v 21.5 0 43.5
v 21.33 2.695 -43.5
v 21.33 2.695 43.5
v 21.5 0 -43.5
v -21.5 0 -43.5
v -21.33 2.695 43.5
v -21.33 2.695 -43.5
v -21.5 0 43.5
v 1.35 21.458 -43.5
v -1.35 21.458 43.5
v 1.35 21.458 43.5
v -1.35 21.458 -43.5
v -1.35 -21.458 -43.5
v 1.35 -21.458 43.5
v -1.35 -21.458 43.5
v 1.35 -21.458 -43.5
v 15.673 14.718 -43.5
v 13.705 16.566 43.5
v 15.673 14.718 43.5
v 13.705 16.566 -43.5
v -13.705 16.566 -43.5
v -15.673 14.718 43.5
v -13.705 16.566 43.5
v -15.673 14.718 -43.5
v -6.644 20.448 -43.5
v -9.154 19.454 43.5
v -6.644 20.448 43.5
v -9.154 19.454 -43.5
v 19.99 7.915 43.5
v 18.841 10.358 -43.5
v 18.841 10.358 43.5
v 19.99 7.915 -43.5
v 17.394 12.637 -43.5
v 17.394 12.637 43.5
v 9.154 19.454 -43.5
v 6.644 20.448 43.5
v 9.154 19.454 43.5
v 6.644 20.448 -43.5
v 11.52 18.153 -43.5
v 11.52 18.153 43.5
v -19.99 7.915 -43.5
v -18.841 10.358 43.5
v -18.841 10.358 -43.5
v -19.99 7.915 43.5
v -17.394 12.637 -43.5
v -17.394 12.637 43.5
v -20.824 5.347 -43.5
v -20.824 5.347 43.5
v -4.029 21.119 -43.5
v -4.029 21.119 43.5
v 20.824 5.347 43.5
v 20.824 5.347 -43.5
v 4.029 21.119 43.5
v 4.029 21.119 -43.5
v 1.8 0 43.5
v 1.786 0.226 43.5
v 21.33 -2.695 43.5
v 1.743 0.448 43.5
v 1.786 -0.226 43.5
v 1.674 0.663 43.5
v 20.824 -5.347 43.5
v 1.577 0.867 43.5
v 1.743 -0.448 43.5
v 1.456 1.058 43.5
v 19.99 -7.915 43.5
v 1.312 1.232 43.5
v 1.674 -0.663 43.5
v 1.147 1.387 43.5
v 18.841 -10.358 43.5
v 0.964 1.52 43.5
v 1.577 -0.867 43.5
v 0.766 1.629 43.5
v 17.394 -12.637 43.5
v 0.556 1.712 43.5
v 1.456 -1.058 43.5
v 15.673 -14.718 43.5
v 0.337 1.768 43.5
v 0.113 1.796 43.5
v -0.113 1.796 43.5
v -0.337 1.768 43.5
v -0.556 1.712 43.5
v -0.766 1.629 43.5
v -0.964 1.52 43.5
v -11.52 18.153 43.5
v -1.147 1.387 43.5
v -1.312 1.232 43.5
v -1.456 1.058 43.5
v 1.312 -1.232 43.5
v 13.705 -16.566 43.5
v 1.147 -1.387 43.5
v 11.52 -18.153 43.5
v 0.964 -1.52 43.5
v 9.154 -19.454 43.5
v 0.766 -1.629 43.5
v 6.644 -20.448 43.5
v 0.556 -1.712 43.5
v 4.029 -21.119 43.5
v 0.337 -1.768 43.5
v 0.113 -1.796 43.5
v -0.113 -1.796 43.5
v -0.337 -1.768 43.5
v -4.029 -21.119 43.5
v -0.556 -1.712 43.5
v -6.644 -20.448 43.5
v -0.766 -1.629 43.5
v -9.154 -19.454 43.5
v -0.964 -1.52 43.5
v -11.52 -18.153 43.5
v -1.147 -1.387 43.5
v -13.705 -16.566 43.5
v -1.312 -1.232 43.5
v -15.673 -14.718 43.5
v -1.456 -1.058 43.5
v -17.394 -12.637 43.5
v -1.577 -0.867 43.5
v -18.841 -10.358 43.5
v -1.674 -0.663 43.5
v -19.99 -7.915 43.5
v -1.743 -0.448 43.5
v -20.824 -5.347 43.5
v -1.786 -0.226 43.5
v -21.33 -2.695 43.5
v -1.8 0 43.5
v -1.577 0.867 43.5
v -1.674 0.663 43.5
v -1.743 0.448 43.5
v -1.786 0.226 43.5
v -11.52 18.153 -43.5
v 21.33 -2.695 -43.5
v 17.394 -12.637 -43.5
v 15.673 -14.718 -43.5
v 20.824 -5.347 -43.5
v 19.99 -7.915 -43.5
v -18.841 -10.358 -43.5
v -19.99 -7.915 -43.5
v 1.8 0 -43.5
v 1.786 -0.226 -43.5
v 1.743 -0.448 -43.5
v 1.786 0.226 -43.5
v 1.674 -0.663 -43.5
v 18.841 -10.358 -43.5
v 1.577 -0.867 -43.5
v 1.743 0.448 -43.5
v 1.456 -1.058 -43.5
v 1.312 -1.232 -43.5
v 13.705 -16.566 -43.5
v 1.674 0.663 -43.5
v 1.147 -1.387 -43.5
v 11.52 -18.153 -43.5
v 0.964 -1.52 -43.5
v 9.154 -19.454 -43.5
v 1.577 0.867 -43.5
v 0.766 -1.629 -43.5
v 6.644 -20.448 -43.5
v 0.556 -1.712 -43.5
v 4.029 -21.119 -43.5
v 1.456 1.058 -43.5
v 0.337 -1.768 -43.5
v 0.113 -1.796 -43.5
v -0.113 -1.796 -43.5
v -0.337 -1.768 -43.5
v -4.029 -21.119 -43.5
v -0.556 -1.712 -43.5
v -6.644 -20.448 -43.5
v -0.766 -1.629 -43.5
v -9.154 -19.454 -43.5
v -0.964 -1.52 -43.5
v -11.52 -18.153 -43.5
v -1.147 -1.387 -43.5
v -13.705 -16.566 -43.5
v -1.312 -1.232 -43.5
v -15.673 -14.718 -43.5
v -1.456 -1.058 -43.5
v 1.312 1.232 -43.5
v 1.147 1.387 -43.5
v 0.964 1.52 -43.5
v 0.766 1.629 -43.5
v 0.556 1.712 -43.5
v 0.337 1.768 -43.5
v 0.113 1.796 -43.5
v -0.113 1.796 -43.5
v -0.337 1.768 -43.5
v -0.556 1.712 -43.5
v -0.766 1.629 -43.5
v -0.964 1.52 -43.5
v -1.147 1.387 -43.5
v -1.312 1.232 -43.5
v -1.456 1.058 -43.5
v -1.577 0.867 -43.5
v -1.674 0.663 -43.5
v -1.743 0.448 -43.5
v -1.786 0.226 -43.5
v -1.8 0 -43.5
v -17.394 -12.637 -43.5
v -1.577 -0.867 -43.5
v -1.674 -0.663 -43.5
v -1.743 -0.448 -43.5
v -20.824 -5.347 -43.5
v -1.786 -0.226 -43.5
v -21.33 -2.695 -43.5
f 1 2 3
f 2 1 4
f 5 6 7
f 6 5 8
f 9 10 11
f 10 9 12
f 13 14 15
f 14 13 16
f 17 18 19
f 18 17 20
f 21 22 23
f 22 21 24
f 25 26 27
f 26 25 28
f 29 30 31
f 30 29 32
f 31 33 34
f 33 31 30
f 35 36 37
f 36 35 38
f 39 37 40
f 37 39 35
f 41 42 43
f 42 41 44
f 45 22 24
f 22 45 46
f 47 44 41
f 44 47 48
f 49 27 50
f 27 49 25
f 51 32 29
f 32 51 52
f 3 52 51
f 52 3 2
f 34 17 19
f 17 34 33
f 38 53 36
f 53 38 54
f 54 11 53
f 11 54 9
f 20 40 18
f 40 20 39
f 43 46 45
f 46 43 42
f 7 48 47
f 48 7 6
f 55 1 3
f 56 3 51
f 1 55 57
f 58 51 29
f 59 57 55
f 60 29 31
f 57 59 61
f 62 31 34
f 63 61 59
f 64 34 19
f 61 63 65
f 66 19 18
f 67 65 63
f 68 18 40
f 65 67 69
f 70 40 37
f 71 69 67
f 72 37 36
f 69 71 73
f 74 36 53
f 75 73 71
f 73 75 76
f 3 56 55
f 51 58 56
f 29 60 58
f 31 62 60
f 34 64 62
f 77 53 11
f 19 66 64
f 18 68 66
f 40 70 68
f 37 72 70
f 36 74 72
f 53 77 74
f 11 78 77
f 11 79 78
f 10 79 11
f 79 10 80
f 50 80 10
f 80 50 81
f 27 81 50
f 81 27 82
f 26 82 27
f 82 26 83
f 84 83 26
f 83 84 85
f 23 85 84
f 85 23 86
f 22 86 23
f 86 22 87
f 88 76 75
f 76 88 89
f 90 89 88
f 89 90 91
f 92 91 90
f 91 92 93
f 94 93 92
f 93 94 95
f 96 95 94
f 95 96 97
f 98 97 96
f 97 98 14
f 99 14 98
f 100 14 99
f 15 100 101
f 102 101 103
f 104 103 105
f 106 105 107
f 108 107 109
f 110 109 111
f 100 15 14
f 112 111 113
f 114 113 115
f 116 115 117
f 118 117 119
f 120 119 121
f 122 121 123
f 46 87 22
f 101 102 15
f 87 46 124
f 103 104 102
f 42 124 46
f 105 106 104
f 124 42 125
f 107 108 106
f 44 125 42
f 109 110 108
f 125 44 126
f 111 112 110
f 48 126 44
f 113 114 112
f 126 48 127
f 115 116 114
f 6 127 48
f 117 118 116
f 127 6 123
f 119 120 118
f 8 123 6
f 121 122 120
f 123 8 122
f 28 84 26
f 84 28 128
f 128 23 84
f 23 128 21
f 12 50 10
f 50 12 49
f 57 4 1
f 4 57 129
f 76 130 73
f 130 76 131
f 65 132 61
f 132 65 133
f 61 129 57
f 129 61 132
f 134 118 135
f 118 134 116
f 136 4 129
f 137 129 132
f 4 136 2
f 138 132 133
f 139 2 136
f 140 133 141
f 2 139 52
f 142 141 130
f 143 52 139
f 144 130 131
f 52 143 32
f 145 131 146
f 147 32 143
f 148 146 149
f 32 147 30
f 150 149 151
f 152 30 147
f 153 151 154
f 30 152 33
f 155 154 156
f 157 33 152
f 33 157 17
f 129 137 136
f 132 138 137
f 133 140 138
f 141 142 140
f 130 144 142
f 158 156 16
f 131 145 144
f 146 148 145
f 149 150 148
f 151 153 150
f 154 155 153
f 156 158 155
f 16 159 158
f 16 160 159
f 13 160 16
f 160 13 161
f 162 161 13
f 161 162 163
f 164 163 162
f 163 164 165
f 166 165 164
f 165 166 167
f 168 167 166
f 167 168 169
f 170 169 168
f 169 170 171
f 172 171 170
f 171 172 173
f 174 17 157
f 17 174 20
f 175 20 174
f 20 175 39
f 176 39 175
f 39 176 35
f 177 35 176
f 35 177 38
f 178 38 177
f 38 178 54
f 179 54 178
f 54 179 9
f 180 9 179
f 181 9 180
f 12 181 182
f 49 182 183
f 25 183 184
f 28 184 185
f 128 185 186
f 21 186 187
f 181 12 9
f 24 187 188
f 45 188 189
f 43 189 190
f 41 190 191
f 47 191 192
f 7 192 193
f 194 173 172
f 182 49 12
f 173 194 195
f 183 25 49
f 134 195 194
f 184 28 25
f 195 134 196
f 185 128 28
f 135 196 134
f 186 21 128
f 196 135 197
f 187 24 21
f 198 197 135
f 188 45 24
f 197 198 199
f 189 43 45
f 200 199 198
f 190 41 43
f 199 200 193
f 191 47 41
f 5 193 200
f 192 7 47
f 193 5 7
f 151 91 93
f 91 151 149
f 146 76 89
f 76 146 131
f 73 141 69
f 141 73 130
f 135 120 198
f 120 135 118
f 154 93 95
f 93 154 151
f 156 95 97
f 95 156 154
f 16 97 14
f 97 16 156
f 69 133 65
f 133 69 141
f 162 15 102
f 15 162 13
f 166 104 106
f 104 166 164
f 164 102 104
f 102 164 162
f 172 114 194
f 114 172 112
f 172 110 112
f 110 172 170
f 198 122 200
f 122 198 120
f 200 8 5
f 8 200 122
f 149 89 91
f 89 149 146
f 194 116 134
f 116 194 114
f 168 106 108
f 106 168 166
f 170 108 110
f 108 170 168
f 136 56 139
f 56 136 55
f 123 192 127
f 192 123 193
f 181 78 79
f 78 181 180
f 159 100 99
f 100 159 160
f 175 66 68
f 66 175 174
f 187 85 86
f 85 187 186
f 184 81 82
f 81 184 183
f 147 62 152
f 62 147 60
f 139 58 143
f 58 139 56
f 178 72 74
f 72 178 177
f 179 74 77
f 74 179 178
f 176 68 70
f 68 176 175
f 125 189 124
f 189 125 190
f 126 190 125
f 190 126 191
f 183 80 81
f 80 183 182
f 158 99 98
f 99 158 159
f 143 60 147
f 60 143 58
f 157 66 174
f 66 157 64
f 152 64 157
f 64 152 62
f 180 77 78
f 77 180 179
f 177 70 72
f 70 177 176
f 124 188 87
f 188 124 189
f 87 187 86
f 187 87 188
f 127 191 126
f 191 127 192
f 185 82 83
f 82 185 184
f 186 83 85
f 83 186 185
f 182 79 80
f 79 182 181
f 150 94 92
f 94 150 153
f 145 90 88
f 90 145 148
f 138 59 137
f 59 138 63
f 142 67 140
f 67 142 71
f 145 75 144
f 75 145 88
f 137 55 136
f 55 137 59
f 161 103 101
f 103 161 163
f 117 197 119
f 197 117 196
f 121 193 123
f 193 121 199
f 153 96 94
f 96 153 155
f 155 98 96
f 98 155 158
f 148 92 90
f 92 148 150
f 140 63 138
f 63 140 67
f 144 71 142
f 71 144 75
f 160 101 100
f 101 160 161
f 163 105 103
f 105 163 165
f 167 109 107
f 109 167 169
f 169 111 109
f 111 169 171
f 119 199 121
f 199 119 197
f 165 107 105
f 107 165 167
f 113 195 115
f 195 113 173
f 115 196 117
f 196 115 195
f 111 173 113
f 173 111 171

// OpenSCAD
$fn = 50;


difference() {
	union() {
		translate(v = [0, 0, -43.5000000000]) {
			cylinder(h = 87, r = 21.5000000000);
		}
	}
	union() {
		translate(v = [0, 0, -100.0000000000]) {
			cylinder(h = 200, r = 1.8000000000);
		}
	}
}
